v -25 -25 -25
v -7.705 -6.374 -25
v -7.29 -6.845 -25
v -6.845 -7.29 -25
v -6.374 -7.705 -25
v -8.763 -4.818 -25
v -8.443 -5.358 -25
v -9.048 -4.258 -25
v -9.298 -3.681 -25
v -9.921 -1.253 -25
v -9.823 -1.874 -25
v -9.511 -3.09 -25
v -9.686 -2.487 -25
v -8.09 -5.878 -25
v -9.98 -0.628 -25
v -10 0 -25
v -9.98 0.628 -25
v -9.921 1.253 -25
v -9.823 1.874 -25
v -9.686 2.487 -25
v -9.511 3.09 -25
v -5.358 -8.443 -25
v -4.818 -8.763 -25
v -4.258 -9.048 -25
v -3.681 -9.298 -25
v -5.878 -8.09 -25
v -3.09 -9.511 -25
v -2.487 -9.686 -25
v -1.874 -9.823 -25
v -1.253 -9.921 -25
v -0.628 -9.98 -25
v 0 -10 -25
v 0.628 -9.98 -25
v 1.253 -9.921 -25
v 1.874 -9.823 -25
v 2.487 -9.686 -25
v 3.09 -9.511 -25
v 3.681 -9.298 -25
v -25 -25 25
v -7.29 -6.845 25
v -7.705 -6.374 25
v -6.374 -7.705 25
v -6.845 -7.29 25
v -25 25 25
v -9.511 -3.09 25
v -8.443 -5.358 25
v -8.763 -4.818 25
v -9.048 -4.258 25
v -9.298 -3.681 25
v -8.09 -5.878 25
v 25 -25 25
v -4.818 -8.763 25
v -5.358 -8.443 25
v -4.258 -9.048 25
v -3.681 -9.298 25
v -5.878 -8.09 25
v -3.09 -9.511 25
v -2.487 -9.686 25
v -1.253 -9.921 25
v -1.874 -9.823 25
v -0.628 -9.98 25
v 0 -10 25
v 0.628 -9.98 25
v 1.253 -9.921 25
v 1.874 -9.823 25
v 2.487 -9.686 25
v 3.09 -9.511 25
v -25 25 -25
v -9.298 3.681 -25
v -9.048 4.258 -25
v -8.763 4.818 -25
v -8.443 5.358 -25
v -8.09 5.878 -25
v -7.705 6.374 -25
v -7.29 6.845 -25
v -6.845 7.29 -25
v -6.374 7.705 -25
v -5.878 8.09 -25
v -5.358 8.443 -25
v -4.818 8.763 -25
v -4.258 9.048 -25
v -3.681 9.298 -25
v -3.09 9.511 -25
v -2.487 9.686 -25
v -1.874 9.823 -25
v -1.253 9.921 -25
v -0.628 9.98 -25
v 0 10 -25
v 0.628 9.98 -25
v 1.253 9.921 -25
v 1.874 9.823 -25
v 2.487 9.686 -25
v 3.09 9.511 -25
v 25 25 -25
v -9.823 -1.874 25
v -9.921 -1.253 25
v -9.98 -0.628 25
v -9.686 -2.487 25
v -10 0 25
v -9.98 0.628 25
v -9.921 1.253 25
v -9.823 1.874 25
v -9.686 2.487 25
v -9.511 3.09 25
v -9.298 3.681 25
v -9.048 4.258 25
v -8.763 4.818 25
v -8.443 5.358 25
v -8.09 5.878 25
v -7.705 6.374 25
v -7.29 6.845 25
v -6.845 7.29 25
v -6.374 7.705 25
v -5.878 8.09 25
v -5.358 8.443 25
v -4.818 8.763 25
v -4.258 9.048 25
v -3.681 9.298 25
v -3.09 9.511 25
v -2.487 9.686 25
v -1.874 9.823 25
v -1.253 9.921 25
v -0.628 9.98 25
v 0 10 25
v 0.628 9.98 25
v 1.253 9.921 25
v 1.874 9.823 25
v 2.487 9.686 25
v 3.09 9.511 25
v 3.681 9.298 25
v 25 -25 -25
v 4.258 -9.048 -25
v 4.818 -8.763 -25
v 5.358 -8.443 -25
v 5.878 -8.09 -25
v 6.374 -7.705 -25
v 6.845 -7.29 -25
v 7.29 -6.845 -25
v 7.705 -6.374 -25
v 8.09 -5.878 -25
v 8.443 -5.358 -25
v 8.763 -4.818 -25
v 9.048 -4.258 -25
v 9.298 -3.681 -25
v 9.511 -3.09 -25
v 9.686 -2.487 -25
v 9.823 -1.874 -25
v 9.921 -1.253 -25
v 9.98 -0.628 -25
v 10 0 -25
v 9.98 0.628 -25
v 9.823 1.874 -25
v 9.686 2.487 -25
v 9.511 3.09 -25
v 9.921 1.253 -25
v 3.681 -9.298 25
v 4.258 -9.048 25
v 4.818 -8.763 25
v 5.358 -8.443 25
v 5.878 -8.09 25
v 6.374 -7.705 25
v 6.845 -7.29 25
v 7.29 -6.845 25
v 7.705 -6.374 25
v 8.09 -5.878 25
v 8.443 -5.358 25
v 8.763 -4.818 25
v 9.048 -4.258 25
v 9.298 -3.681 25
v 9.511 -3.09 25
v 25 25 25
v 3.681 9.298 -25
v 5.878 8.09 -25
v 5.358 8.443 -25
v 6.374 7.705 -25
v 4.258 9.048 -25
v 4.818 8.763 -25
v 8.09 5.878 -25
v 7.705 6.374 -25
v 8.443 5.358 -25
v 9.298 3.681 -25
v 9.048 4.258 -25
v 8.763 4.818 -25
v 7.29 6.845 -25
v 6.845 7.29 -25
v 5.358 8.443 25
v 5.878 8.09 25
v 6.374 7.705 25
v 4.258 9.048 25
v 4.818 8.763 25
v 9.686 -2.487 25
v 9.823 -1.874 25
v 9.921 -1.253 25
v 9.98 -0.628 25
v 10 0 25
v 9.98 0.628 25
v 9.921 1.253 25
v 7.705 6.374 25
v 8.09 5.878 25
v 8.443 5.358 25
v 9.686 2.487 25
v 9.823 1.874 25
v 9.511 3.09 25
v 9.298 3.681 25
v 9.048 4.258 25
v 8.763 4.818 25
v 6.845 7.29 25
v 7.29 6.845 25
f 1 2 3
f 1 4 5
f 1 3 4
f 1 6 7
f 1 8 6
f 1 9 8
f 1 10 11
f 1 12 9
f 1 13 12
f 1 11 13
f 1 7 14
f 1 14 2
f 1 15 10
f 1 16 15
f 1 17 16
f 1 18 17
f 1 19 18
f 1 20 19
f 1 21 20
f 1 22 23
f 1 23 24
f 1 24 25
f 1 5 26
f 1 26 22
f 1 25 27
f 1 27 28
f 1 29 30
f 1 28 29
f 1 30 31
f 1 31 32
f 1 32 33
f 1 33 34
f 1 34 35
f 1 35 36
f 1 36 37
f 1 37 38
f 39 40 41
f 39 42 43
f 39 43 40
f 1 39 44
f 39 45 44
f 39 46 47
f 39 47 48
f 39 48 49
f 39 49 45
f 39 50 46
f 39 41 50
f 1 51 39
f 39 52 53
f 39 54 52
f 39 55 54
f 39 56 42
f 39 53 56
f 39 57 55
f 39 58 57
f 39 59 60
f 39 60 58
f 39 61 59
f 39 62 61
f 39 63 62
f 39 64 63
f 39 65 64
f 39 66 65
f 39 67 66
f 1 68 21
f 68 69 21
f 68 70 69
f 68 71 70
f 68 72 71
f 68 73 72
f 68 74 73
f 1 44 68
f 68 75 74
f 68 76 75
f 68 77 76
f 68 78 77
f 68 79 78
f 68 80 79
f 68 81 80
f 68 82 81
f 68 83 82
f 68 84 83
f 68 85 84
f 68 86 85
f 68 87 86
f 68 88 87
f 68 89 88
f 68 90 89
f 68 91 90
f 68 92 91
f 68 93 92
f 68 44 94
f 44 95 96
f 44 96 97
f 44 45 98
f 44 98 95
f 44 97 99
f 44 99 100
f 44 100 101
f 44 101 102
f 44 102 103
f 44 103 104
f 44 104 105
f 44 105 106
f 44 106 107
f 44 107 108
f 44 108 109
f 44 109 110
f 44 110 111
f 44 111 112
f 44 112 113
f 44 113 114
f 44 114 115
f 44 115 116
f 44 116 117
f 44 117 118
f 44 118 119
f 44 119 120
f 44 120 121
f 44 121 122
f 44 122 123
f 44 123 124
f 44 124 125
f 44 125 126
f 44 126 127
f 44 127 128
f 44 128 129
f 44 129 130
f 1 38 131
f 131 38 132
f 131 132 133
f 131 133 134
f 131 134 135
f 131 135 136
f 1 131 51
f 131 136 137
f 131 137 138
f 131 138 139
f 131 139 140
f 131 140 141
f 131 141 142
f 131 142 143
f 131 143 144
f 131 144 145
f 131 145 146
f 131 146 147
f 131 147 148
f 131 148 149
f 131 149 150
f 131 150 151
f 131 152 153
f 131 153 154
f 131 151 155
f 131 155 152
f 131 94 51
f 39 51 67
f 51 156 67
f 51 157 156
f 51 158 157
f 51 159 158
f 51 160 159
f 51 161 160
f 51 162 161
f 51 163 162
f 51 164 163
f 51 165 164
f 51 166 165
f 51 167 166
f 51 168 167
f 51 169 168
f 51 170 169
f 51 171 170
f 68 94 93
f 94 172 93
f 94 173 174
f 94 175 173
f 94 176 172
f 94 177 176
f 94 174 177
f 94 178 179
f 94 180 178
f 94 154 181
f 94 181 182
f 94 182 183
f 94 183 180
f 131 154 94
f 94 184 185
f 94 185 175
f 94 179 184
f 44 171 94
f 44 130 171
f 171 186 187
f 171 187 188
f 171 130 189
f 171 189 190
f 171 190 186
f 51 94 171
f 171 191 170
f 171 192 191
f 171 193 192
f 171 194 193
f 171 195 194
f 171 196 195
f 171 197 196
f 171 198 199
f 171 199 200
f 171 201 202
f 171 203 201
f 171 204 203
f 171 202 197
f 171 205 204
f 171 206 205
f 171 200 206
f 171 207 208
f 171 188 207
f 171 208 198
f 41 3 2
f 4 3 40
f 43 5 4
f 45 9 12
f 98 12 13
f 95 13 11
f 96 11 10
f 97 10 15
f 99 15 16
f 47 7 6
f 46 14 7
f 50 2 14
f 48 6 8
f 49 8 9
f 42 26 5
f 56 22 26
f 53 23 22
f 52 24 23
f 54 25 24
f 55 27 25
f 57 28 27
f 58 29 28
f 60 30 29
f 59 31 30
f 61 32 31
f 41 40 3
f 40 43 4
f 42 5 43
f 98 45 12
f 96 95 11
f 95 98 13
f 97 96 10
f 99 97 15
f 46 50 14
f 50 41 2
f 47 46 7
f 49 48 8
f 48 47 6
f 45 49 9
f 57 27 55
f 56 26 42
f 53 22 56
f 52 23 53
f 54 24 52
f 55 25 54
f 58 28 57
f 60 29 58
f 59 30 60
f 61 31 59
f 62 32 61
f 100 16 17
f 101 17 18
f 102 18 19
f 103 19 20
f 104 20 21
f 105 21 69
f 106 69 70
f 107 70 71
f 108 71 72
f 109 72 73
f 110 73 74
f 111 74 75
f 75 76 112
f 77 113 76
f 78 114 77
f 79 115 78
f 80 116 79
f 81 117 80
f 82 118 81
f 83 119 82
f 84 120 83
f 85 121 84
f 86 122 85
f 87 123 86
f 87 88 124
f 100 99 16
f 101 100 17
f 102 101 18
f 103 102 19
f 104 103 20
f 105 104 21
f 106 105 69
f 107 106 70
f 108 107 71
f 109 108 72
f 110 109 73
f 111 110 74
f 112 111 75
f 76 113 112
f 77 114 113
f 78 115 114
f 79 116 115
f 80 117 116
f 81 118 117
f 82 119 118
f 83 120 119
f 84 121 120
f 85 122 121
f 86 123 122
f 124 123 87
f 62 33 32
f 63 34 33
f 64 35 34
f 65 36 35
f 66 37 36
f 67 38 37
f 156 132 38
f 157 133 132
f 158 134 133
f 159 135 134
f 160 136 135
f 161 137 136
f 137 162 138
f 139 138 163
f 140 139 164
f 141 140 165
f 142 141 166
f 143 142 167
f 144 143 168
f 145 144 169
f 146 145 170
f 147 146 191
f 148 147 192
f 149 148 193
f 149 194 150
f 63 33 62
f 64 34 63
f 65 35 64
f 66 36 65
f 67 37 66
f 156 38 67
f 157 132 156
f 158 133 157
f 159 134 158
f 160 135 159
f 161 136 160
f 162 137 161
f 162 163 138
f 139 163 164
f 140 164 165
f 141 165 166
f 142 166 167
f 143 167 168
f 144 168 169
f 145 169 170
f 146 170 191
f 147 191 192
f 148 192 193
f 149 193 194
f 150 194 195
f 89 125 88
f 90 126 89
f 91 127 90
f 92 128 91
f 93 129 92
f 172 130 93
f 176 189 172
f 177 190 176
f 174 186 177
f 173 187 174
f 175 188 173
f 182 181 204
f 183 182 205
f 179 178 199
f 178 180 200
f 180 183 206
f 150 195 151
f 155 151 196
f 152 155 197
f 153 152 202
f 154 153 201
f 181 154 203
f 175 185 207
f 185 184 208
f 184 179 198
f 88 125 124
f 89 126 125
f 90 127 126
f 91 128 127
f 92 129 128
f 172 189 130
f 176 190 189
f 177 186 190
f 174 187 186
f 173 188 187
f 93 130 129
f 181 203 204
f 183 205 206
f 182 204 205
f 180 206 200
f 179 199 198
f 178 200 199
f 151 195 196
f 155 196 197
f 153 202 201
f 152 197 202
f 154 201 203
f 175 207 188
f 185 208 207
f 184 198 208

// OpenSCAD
difference() {
    cube([50, 50, 50], center=true);
    cylinder(h=52, d=20, center=true, $fn=100);
}
